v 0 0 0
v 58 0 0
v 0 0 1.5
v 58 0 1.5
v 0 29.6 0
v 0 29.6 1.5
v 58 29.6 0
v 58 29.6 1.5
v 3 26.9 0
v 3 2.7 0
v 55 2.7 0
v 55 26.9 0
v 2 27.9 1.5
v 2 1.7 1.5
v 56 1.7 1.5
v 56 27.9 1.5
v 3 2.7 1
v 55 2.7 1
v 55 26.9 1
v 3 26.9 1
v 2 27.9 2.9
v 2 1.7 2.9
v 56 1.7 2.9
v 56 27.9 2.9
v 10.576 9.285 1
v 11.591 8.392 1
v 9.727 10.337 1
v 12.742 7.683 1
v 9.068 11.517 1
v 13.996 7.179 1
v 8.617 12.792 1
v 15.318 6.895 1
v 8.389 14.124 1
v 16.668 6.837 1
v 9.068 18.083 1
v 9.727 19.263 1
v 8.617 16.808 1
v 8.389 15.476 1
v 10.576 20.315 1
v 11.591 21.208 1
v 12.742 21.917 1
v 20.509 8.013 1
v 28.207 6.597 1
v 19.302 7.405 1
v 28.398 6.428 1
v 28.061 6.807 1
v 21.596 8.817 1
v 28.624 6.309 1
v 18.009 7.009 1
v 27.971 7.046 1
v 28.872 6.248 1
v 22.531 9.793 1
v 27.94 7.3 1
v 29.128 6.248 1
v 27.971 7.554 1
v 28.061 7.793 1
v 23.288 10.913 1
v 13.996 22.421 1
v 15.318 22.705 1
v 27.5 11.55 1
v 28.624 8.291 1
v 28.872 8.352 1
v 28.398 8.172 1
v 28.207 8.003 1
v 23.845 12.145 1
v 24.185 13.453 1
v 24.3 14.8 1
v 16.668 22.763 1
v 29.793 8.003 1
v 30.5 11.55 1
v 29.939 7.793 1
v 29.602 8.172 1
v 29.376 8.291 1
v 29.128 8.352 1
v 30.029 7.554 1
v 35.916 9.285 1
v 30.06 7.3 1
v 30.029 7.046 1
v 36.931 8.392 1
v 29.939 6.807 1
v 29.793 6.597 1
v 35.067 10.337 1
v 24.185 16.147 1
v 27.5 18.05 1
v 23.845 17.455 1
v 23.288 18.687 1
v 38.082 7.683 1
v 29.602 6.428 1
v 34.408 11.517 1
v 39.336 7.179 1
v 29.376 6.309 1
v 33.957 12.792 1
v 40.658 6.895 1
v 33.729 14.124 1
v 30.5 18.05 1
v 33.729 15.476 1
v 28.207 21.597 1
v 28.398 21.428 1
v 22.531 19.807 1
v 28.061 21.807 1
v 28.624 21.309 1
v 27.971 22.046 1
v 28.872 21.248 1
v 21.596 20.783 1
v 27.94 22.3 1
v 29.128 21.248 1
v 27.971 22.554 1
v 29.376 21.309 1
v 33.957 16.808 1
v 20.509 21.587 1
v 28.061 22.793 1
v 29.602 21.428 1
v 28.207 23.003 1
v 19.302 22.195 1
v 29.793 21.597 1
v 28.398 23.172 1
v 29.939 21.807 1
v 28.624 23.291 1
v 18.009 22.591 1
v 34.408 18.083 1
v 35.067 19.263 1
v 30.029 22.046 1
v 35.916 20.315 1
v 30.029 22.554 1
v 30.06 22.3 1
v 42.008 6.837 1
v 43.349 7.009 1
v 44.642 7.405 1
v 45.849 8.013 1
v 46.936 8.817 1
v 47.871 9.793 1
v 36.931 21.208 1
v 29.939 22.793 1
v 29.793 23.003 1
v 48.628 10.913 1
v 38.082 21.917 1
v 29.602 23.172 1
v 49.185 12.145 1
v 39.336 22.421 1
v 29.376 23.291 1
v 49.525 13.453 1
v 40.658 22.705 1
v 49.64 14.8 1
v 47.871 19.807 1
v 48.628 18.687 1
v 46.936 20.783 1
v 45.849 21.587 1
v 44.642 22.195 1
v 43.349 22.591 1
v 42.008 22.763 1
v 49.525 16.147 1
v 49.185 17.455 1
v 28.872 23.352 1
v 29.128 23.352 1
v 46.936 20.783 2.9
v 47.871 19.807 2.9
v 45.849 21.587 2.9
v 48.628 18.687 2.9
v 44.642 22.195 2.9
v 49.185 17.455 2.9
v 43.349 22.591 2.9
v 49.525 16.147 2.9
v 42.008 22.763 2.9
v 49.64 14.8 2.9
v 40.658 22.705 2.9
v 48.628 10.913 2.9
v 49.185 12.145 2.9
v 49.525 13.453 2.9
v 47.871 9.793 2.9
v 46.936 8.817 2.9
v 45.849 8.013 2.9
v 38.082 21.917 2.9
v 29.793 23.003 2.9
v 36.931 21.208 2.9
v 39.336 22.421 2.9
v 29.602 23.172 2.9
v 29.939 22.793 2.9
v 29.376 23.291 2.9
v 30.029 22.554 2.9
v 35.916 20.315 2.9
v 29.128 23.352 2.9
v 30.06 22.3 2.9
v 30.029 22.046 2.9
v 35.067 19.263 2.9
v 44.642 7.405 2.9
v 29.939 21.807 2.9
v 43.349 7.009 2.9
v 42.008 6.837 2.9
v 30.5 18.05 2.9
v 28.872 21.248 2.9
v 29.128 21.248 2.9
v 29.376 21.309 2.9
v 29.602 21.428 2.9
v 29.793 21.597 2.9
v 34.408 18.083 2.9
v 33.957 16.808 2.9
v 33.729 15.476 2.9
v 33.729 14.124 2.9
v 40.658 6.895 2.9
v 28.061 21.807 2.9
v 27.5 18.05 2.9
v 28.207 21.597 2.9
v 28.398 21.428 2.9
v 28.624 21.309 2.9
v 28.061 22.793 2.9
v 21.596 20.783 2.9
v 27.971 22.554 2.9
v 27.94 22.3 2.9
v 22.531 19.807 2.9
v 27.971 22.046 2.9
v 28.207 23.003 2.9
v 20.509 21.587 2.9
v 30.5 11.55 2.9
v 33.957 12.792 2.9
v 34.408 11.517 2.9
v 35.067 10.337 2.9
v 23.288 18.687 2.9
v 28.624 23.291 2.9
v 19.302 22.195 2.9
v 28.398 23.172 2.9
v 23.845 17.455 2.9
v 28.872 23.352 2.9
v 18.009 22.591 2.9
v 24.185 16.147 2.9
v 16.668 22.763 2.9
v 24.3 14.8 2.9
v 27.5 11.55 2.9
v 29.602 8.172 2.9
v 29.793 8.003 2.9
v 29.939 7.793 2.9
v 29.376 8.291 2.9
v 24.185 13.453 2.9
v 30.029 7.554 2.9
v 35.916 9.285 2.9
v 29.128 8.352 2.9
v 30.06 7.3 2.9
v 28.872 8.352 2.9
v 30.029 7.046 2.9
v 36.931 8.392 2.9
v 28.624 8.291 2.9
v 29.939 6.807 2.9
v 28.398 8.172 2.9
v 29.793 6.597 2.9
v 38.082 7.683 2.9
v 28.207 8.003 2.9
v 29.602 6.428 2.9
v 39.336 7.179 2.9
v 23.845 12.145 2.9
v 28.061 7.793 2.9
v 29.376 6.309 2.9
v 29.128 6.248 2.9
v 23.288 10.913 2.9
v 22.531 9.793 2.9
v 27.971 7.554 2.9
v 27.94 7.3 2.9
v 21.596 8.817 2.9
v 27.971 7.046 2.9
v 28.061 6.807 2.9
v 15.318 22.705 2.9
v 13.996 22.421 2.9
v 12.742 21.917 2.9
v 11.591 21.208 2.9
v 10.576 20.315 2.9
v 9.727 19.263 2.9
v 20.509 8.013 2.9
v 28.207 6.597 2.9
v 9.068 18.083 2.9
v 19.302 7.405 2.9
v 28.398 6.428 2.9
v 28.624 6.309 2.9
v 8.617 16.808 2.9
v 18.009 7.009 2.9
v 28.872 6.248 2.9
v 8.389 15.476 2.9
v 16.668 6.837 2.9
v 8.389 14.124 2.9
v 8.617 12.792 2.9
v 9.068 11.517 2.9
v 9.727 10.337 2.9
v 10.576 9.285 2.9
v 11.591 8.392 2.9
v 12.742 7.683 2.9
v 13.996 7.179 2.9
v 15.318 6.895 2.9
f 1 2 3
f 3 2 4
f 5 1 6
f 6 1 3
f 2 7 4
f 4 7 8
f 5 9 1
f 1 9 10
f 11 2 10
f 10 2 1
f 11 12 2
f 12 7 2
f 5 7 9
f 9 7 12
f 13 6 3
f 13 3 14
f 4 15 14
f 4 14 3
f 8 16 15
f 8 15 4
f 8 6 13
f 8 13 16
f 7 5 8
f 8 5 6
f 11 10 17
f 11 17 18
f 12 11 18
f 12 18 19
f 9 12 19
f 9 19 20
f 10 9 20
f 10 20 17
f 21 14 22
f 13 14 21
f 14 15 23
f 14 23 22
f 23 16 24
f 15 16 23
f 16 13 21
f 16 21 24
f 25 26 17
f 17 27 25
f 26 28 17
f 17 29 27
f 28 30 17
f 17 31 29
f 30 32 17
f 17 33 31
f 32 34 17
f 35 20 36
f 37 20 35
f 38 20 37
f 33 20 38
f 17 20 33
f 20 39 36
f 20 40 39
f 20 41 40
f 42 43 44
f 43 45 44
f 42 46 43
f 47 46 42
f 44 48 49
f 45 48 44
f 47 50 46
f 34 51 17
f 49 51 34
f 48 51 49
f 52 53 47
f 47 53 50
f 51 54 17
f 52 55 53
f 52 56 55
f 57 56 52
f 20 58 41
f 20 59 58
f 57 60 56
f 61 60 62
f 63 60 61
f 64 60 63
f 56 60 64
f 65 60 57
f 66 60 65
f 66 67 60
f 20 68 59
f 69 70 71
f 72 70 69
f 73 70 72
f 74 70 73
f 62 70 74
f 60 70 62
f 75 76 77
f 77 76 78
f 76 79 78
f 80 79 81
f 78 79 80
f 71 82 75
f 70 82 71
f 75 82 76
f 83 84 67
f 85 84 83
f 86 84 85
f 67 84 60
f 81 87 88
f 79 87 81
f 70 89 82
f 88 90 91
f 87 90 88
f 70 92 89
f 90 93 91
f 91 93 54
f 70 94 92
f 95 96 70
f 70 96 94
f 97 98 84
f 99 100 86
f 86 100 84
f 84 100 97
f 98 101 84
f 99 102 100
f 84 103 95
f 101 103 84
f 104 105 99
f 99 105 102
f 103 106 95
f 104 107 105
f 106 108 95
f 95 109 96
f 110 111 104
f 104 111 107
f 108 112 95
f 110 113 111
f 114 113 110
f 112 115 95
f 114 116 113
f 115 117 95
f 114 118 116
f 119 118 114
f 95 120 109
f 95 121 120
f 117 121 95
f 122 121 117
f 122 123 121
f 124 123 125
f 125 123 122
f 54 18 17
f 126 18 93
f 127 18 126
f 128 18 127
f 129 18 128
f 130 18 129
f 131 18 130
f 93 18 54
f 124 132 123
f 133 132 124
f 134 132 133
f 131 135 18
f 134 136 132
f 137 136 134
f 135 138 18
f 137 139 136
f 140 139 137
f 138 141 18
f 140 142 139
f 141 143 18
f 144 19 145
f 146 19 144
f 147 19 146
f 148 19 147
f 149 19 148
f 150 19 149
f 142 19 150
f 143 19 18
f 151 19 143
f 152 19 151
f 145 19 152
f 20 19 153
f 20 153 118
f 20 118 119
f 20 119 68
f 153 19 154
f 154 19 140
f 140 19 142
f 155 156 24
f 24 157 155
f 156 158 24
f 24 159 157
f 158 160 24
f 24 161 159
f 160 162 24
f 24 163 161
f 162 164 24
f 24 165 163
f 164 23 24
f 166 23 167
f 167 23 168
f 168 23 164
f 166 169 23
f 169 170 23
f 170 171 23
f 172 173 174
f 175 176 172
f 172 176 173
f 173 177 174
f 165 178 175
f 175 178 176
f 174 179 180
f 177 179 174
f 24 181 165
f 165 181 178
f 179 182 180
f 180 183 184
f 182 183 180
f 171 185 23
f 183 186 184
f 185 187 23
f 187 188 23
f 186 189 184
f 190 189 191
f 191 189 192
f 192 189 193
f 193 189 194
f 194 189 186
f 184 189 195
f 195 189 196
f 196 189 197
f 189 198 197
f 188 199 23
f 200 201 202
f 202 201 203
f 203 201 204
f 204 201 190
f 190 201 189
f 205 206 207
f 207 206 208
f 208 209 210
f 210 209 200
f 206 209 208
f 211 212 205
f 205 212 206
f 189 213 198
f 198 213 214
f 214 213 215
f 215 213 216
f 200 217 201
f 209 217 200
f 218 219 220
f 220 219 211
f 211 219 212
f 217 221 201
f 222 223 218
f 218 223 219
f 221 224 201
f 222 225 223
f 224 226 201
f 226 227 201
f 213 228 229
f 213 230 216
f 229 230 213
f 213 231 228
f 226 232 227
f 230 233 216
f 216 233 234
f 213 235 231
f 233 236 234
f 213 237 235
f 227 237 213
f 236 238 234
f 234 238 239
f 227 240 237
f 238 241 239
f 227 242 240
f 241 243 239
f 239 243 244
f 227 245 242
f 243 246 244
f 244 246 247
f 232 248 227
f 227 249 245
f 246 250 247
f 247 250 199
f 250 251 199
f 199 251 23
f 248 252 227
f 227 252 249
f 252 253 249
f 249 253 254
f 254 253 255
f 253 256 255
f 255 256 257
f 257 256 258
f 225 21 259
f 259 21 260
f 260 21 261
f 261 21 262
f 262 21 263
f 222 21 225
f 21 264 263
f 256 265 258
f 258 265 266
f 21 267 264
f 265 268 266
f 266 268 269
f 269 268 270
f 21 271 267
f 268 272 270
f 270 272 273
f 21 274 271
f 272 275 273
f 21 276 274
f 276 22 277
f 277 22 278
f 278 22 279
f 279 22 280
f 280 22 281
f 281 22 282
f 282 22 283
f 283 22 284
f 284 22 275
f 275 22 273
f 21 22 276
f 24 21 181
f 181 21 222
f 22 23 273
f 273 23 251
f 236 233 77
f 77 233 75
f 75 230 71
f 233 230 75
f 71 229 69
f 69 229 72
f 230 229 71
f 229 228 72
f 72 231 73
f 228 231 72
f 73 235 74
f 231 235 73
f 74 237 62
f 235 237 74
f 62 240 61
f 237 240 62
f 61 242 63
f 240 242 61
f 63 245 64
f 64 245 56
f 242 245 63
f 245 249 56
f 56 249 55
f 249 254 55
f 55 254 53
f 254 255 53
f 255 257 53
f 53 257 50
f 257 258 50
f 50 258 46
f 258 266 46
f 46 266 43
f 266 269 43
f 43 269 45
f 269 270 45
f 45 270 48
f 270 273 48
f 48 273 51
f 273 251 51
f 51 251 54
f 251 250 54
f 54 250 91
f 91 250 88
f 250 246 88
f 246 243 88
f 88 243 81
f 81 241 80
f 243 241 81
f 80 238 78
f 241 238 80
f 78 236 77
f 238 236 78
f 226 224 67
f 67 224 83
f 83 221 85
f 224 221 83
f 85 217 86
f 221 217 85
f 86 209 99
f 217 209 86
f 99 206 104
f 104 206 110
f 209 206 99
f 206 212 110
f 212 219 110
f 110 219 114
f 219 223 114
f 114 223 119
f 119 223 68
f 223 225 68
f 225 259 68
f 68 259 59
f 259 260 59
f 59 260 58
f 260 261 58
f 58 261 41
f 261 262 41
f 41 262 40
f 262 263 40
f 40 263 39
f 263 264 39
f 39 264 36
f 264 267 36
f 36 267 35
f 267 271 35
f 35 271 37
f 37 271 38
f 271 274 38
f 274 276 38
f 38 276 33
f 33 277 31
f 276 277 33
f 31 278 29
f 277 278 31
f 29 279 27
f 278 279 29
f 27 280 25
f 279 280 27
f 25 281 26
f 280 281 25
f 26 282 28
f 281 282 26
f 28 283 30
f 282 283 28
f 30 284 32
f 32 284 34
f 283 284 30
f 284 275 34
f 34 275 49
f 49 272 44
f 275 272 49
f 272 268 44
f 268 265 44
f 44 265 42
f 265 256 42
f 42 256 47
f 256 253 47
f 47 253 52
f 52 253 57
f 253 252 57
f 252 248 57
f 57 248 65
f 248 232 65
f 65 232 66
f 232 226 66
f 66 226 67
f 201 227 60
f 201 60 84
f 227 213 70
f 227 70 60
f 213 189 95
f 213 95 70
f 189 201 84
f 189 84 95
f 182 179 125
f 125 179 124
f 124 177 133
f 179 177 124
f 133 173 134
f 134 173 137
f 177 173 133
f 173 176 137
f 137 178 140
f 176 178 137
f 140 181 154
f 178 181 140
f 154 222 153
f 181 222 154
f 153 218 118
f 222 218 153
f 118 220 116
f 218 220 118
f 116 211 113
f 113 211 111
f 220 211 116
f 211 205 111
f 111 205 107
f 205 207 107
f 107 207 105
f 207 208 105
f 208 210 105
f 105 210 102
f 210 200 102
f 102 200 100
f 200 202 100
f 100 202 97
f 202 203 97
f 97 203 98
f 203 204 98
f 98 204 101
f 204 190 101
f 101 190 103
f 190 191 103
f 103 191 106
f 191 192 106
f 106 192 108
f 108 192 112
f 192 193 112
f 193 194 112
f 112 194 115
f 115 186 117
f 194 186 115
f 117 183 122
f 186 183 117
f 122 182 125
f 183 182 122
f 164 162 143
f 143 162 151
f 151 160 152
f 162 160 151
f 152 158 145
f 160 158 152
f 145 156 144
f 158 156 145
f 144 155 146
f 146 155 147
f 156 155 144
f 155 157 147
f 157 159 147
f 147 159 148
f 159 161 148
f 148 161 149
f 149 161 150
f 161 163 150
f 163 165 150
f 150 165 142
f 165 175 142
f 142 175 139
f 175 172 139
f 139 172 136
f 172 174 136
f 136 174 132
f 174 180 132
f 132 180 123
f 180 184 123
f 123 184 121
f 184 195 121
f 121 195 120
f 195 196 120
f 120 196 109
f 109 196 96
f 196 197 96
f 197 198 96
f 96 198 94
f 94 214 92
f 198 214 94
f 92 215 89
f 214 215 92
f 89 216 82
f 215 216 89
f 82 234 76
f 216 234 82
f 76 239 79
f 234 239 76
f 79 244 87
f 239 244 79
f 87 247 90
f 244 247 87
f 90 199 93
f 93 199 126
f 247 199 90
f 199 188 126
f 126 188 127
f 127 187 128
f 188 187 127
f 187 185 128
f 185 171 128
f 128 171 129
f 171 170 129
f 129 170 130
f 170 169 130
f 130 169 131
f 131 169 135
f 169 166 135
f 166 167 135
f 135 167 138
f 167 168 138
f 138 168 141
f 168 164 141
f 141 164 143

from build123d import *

# Parameters (mm, degrees)
SKETCH_W        = 58
SKETCH_H        = 29.6
PAD_DEPTH       = 1.5
SKETCH001_W     = 54
SKETCH001_H     = 26.2
PAD001_DEPTH    = 1.4
SKETCH002_W     = 52
SKETCH002_H     = 24.2
POCKET_DEPTH    = 1
SKETCH003_R     = 7.97
SKETCH003_R_2   = 1.06
SKETCH003_W     = 3
SKETCH003_H     = 6.5
POCKET001_DEPTH = 5


with BuildPart() as part:
    # Sketch → Pad (new body)
    with BuildSketch(Plane.XY):
        with Locations((29, 14.8)):
            Rectangle(SKETCH_W, SKETCH_H)
    extrude(amount=PAD_DEPTH)

    # Sketch001 (on Face6 of Pad) → Pad001 (join)
    with BuildSketch(Plane.XY.offset(1.5)):
        with Locations((29, 14.8)):
            Rectangle(SKETCH001_W, SKETCH001_H)
    extrude(amount=PAD001_DEPTH)

    # Sketch002 (on Face4 of Pad001) → Pocket (cut)
    with BuildSketch(Plane(origin=(0, 0, 0), x_dir=(1, 0, 0), z_dir=(0, 0, -1))):
        with Locations((29, -14.8)):
            Rectangle(SKETCH002_W, SKETCH002_H)
    extrude(amount=-POCKET_DEPTH, mode=Mode.SUBTRACT)

    # Sketch003 (on Face16 of Pocket) → Pocket001 (cut)
    with BuildSketch(Plane.XY.offset(2.9)):
        with Locations((16.33, 14.8)):
            Circle(SKETCH003_R)
        with Locations((41.67, 14.8)):
            Circle(SKETCH003_R)
        with Locations((29, 22.3)):
            Circle(SKETCH003_R_2)
        with Locations((29, 7.3)):
            Circle(SKETCH003_R_2)
        with Locations((29, 14.8)):
            Rectangle(SKETCH003_W, SKETCH003_H)
    extrude(amount=-POCKET001_DEPTH, mode=Mode.SUBTRACT)


solid = part.part
